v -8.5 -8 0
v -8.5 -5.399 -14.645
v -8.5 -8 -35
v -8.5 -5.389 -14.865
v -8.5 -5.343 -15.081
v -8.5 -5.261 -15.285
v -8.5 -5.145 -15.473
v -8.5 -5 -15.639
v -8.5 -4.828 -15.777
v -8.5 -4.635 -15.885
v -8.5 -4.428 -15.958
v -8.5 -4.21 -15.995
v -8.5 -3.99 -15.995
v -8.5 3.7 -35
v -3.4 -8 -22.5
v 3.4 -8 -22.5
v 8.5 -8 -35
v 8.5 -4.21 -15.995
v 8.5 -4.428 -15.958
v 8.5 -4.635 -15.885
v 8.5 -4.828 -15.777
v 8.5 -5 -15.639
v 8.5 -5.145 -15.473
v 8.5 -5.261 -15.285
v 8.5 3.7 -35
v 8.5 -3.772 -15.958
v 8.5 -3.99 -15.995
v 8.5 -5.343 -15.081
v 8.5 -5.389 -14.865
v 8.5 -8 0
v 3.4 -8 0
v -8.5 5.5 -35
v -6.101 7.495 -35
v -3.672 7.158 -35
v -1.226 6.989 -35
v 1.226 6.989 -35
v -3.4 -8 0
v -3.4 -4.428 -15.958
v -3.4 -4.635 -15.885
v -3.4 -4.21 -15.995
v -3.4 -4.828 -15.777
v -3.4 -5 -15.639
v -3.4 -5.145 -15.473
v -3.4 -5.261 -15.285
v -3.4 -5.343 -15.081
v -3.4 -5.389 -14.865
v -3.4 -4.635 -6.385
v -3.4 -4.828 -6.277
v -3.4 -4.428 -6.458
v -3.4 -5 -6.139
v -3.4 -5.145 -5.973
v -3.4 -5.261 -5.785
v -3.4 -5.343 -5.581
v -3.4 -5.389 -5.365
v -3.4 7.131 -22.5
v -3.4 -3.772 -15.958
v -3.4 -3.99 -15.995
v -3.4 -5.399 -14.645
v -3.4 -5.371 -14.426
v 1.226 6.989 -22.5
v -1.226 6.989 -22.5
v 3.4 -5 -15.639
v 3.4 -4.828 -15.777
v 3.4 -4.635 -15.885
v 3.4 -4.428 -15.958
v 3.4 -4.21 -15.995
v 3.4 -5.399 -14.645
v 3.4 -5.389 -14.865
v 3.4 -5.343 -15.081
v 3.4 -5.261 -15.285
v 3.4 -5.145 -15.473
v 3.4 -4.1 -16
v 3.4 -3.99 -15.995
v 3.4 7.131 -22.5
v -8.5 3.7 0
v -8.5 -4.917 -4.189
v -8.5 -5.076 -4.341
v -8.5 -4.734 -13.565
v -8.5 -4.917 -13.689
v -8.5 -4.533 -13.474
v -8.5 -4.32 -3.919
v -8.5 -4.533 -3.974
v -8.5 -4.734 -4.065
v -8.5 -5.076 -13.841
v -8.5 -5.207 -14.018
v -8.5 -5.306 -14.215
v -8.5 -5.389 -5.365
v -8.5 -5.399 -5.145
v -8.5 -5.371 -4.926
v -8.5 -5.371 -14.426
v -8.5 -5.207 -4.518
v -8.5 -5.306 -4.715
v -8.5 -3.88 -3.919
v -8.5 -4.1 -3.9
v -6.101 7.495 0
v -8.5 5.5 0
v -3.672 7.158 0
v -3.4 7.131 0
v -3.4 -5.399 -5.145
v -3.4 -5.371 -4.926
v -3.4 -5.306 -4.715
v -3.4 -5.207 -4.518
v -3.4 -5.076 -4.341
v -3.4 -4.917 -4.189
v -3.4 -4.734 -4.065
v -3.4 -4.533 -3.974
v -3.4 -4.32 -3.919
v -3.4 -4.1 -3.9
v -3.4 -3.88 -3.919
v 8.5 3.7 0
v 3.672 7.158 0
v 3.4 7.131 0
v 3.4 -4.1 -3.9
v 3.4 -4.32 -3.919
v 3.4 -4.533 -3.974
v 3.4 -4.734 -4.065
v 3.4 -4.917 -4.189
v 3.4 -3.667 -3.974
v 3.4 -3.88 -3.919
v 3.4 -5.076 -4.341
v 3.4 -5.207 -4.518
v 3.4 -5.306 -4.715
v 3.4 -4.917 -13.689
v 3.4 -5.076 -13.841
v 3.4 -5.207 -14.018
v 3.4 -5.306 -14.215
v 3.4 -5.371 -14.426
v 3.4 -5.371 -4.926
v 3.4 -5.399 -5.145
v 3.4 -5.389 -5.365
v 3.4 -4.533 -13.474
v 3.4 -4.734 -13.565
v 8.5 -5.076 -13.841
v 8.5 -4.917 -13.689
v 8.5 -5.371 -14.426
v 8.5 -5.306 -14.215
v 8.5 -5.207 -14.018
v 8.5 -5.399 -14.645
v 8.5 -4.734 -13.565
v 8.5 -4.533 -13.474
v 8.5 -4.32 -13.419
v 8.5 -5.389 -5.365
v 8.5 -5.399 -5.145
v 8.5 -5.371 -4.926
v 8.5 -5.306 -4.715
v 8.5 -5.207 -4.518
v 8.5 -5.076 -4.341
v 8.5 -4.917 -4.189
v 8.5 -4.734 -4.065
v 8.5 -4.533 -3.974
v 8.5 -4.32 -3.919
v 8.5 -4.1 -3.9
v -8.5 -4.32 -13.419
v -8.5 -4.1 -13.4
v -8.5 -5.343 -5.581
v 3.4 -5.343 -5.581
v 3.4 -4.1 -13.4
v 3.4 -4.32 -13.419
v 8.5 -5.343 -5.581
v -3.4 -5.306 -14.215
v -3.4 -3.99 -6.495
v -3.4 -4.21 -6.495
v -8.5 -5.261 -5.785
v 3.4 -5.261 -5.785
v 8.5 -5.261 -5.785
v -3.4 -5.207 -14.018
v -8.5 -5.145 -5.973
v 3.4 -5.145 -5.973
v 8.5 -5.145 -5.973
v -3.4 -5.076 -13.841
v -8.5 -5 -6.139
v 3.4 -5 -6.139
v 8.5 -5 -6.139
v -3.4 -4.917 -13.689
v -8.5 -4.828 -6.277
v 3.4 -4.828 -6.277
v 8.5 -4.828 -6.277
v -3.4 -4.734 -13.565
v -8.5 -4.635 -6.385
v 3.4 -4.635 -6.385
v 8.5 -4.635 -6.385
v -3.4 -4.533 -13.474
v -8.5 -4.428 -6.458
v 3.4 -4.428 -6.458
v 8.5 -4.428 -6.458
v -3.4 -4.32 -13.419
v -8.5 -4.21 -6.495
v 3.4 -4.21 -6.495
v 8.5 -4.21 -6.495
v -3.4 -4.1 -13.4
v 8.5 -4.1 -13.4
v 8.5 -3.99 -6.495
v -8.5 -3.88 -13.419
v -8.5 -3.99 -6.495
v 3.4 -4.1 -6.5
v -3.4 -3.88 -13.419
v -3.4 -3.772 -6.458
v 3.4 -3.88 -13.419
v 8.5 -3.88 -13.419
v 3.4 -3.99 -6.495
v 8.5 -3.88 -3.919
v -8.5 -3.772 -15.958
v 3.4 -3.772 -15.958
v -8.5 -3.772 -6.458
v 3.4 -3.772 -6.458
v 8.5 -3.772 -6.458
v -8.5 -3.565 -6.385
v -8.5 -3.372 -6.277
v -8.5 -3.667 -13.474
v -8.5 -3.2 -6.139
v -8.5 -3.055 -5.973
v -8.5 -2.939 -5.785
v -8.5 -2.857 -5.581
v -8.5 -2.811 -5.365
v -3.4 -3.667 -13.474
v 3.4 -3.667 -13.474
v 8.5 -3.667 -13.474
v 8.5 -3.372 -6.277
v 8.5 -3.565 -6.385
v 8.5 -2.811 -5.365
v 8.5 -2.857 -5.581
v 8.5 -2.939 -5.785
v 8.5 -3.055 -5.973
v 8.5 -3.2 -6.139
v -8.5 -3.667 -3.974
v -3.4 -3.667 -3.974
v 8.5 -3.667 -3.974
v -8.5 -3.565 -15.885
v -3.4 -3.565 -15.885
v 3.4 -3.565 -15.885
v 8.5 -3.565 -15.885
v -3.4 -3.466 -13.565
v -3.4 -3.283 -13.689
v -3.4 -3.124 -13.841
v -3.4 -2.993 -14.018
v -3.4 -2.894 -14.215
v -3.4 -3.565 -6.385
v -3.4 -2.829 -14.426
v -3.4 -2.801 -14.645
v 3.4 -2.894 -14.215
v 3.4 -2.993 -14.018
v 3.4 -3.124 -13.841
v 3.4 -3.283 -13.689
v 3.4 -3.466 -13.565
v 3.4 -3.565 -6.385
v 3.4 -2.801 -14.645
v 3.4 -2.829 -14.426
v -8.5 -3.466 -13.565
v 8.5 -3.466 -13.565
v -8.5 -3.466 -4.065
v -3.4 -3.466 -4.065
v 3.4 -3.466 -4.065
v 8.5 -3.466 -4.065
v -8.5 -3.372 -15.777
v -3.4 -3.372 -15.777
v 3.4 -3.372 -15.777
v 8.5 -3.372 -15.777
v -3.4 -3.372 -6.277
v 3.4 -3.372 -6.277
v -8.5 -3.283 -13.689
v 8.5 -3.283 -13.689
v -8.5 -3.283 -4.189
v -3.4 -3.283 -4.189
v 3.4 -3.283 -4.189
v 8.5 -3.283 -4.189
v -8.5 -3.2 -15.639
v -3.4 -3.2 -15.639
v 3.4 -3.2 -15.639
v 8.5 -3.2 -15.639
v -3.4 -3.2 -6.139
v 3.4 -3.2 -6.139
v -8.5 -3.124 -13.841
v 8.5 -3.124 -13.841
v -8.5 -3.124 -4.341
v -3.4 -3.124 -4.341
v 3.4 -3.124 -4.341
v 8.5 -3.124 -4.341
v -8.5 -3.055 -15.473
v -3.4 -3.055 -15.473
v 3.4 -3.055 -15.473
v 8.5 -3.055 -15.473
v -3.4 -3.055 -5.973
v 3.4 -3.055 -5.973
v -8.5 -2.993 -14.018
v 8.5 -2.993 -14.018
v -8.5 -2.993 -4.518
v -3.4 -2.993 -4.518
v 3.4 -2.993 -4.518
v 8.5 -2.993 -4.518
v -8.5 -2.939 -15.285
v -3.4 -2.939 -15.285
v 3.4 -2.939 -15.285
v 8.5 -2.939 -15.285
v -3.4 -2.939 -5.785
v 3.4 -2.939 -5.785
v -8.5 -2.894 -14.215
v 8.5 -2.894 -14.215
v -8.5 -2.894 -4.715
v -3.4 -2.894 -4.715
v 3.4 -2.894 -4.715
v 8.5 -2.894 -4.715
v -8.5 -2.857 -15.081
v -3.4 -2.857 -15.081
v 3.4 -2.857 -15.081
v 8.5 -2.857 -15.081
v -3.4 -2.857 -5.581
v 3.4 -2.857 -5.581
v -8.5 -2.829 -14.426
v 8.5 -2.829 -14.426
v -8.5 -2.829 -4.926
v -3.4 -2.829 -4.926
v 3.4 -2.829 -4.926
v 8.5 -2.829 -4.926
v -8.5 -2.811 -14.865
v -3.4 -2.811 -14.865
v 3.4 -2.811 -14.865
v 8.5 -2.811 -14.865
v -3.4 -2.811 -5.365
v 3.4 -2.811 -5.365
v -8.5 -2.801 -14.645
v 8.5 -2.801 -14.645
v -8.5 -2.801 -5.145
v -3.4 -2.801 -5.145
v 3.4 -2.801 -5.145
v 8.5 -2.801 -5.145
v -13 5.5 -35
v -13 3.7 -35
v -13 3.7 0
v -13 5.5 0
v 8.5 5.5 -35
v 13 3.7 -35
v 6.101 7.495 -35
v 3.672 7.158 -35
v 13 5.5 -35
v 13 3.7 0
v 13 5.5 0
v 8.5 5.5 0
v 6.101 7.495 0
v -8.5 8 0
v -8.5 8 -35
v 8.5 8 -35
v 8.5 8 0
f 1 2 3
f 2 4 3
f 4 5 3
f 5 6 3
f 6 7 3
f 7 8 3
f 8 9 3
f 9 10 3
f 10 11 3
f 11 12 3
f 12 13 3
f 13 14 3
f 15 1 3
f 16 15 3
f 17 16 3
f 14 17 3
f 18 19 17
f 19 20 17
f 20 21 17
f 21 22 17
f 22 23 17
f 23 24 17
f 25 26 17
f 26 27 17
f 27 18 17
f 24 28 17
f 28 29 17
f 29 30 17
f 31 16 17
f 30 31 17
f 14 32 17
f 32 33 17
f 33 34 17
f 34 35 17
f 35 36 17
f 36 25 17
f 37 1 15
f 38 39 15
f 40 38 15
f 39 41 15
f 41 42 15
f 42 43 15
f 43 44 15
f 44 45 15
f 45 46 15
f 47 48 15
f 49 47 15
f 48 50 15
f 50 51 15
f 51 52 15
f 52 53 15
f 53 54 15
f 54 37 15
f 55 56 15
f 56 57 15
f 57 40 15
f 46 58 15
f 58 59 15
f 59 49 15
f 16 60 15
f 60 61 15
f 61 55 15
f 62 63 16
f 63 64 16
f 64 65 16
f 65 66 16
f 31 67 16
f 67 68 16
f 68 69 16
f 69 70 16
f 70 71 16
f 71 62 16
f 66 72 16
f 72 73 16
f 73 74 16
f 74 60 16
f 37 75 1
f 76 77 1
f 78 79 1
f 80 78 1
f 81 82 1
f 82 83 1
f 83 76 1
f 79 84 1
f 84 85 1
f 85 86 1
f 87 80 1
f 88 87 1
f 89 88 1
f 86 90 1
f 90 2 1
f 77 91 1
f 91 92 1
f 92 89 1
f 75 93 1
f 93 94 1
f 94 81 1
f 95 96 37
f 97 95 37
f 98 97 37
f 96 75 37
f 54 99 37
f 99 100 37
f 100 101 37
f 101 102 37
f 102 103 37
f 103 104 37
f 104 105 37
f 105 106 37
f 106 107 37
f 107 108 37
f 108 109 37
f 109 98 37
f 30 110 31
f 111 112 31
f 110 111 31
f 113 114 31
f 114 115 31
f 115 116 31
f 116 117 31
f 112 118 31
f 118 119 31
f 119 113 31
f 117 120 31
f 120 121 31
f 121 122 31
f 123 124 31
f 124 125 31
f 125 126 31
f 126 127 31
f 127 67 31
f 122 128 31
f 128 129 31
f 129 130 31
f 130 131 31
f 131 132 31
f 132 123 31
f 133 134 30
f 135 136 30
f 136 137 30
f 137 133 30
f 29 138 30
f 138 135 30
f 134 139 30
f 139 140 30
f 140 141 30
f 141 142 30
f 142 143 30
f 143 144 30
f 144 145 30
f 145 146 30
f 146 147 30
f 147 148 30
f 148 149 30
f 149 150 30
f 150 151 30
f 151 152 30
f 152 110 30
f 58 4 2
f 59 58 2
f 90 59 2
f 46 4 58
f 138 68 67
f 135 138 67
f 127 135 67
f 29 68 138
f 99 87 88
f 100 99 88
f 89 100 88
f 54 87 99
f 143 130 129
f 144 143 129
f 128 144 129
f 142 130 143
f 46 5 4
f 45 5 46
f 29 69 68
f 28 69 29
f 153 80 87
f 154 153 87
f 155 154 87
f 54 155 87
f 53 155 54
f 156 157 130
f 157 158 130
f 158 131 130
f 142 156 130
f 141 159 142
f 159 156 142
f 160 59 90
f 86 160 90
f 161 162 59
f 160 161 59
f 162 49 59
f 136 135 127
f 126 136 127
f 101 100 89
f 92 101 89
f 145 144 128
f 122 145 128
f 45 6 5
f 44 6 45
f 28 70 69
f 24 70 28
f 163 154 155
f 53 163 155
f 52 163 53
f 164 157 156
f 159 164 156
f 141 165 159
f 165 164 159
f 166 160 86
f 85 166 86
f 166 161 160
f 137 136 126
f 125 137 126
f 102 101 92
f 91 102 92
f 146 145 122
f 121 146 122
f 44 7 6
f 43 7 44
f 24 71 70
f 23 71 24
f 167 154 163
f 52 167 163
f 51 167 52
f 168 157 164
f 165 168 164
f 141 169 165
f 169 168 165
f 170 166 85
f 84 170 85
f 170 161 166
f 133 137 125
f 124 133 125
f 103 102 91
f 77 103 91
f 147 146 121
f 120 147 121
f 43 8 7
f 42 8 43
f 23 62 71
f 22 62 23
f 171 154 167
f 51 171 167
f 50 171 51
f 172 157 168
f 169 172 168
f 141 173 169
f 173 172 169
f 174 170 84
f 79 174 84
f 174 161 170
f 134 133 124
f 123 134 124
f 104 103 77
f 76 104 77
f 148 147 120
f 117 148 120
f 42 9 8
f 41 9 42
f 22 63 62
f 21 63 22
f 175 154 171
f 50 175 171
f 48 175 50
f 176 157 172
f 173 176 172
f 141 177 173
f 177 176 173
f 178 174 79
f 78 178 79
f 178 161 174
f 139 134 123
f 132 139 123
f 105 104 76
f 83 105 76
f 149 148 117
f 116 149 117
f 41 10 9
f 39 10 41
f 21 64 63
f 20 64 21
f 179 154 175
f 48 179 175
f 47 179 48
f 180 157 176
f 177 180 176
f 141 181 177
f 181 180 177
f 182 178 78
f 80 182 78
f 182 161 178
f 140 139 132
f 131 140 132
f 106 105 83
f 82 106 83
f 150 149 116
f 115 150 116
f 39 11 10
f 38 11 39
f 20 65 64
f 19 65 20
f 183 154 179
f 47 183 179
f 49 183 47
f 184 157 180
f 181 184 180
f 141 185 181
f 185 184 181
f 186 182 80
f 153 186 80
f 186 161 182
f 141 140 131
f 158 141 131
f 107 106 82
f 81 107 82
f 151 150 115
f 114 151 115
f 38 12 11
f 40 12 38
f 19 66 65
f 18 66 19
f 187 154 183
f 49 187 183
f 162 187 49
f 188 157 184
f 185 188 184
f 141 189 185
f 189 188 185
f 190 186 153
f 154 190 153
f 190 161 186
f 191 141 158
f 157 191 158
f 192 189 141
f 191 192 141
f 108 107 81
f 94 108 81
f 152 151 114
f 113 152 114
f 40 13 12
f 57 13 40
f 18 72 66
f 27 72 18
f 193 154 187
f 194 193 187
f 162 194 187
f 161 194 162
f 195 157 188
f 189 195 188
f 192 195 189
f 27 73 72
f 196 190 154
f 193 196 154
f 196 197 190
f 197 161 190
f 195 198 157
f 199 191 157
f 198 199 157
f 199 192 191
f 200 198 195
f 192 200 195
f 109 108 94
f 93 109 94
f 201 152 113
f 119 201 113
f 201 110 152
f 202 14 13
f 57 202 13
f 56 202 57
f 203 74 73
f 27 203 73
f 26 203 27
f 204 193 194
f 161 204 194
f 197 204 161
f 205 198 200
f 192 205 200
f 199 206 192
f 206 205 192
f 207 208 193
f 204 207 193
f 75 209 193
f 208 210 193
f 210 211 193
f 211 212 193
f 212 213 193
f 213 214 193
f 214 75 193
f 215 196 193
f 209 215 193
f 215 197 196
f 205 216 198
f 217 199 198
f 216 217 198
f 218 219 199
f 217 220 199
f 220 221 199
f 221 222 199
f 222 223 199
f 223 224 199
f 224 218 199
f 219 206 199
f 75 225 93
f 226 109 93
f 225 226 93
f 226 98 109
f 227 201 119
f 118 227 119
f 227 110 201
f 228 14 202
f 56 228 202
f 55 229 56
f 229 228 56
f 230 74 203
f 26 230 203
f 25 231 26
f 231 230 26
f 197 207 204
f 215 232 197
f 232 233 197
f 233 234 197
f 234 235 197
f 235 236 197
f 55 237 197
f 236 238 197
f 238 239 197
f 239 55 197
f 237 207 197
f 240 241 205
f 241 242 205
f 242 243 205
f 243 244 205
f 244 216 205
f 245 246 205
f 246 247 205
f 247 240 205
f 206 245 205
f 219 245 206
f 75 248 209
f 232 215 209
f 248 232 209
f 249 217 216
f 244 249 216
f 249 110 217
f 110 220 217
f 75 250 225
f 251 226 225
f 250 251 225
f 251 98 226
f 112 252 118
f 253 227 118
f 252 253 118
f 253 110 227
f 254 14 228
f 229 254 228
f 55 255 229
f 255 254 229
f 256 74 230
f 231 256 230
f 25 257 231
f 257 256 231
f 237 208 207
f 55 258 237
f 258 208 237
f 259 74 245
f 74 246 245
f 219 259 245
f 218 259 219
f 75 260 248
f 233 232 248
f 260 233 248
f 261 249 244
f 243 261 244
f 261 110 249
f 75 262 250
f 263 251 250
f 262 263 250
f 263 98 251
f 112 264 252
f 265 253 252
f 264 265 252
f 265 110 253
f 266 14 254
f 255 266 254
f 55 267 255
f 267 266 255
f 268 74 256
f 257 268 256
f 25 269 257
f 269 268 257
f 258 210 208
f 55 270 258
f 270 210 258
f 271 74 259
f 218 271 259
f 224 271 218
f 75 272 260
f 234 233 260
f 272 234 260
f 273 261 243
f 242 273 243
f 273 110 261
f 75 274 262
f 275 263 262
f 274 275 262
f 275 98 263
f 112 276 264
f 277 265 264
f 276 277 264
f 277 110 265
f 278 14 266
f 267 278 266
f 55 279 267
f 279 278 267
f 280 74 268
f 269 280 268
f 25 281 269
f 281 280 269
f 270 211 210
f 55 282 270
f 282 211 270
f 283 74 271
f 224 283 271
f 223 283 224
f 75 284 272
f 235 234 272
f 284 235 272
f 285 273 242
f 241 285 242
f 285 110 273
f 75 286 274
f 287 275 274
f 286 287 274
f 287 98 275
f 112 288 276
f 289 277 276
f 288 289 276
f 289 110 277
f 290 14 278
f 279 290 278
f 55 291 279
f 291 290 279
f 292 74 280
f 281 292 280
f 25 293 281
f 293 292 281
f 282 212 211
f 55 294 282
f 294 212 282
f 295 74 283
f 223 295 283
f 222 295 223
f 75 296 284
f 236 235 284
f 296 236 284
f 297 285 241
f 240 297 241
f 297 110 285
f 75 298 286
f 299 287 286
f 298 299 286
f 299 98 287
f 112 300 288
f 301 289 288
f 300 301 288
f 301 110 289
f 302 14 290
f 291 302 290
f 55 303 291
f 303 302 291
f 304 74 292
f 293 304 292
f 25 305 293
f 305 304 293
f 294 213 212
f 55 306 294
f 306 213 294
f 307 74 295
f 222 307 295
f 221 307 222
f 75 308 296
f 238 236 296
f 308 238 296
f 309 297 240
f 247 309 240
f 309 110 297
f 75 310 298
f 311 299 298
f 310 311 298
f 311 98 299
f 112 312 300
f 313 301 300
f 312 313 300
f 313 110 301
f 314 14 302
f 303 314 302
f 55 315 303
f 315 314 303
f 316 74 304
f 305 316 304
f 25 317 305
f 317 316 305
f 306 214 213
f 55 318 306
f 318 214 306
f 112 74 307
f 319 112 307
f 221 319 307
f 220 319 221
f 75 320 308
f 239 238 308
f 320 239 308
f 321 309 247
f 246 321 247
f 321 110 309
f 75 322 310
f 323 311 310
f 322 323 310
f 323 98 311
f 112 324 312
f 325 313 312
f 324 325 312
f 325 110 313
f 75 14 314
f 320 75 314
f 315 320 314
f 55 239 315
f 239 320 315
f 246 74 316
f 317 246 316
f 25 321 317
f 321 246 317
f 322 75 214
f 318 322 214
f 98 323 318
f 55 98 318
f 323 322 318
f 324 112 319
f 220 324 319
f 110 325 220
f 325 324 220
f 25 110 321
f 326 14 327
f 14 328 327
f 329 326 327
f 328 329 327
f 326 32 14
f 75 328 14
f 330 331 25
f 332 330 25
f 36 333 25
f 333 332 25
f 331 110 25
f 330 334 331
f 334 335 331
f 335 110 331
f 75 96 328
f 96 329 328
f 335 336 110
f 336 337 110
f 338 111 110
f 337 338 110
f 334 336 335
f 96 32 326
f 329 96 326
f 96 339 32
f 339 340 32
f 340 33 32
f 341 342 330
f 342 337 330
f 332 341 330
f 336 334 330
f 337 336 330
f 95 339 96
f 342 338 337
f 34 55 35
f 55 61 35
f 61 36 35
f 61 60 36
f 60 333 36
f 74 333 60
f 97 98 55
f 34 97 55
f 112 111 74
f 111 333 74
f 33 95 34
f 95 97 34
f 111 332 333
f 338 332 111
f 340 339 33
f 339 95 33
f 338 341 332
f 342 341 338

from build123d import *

# Parameters (mm, degrees)
EXTRUDE_1_DEPTH     = 35
CUT_EXTRUDE_1_DEPTH = 22.5
SKETCH_5_R          = 1.3
CUT_EXTRUDE_3_DEPTH = 40.724048132
SKETCH_6_W          = 4.5
SKETCH_6_H          = 1.8
EXTRUDE_2_DEPTH     = 35


with BuildPart() as part:
    # 草圖2 → 填料-伸長1 (new body)
    with BuildSketch(Plane.XY):
        with BuildLine():
            Line((-8.5, -8), (8.5, -8))
            Line((8.5, -8), (8.5, 8))
            ThreePointArc((8.5, 8), (0, 6.967375879), (-8.5, 8))
            Line((-8.5, 8), (-8.5, -8))
        make_face()
    extrude(amount=-EXTRUDE_1_DEPTH)

    # 草圖3 → 除料-伸長1 (cut)
    with BuildSketch(Plane.XY):
        with BuildLine():
            Line((-3.4, -8), (3.4, -8))
            Line((3.4, -8), (3.4, 7.130567874))
            ThreePointArc((3.4, 7.130567874), (0, 6.967375879), (-3.4, 7.130567874))
            Line((-3.4, 7.130567874), (-3.4, -8))
        make_face()
    extrude(amount=-CUT_EXTRUDE_1_DEPTH, mode=Mode.SUBTRACT)

    # 草圖5 → 除料-伸長3 (cut, through all)
    with BuildSketch(Plane.ZY.offset(8.5)):
        with Locations((-5.2, -4.1)):
            Circle(SKETCH_5_R)
        with Locations((-14.7, -4.1)):
            Circle(SKETCH_5_R)
    extrude(amount=-CUT_EXTRUDE_3_DEPTH, mode=Mode.SUBTRACT)

    # 草圖6 → 填料-伸長2 (add)
    with BuildSketch(Plane.XY):
        with Locations((10.75, 4.6)):
            Rectangle(SKETCH_6_W, SKETCH_6_H)
    extrude_2 = extrude(amount=-EXTRUDE_2_DEPTH)

    # 鏡射1: 填料-伸長2 across plane
    add(extrude_2.mirror(Plane(origin=(0, 0, 0), x_dir=(0, 0, 1), z_dir=(1, 0, 0))))


solid = part.part
